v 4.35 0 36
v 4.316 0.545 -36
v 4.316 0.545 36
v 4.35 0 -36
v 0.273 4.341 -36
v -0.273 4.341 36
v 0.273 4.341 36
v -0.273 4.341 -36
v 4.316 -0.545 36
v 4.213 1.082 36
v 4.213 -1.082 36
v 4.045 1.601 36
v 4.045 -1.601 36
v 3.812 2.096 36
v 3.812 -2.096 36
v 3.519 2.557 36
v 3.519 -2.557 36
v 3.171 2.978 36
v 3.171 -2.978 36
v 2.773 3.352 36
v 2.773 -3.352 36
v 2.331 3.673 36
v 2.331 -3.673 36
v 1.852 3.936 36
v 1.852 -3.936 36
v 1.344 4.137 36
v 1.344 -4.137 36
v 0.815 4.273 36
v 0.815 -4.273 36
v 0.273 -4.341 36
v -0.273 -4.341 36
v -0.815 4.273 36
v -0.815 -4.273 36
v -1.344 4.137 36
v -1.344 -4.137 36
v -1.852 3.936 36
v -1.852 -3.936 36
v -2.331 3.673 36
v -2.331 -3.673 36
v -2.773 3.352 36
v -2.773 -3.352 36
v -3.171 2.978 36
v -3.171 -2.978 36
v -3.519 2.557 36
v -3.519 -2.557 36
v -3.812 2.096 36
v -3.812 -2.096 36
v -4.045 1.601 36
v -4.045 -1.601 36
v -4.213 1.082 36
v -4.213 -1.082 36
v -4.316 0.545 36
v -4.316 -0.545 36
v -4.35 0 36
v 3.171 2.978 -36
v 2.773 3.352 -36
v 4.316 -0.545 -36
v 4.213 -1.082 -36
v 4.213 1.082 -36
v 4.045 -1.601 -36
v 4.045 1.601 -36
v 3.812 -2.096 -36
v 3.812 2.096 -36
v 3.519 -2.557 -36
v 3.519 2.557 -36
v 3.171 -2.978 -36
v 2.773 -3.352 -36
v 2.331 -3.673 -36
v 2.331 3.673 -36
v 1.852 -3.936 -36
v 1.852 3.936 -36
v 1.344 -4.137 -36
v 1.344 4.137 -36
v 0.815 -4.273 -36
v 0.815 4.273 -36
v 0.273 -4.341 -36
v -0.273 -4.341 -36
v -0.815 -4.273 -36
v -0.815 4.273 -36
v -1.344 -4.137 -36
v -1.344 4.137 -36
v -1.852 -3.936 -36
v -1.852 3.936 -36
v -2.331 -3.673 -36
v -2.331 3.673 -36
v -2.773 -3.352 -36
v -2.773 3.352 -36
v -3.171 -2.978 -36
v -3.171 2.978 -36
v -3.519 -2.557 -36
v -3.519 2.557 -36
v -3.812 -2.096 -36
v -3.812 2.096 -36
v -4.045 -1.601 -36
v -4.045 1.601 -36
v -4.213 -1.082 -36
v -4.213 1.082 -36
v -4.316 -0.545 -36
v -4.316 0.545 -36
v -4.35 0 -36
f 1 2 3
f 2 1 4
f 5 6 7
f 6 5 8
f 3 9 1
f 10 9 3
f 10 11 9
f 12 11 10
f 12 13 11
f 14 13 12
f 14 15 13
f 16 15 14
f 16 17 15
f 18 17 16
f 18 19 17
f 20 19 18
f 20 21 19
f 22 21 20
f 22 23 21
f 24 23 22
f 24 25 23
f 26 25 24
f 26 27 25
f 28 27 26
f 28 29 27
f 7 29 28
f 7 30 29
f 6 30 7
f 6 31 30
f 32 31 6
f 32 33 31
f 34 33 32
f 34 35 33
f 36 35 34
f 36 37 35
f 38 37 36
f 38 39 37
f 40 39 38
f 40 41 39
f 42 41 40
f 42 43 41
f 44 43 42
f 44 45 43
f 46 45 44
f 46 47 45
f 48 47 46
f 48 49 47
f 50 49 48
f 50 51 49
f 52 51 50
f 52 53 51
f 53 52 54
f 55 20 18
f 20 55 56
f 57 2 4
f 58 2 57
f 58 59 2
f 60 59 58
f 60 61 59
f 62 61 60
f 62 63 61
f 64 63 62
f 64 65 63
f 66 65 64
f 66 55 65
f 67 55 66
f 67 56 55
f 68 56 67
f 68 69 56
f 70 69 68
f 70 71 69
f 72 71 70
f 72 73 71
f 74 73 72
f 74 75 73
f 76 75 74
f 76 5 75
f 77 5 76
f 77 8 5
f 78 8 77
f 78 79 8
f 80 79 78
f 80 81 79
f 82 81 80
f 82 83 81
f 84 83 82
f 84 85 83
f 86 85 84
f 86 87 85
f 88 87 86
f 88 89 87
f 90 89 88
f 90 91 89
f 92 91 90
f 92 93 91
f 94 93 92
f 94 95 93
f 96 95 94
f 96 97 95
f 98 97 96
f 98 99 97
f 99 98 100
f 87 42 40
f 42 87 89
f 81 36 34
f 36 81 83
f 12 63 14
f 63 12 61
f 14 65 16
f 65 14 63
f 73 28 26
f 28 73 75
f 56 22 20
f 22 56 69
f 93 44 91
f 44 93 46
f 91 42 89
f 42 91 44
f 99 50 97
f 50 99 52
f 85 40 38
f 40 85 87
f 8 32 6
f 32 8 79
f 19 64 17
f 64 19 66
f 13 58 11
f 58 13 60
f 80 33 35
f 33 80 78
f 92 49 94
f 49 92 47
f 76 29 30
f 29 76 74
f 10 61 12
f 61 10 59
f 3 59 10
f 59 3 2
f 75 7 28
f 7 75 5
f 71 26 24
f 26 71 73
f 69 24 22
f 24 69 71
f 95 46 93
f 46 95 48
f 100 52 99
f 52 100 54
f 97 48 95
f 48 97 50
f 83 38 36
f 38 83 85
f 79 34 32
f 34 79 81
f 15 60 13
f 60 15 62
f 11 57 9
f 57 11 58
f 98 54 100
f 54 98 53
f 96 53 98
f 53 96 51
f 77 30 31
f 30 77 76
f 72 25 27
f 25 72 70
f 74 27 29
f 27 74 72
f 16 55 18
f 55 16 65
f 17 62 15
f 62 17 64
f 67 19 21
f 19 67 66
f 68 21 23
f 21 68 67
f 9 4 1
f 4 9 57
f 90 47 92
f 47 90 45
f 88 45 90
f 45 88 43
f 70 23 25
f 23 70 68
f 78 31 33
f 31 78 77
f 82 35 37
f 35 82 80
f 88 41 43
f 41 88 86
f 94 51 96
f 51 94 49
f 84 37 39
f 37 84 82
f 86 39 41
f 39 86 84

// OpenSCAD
$fn = 50;


difference() {
	union() {
		translate(v = [0, 0, -36.0000000000]) {
			cylinder(h = 72, r = 4.3500000000);
		}
	}
	union() {
		translate(v = [0, 0, -100.0000000000]) {
			cylinder(h = 200, r = 0);
		}
	}
}
